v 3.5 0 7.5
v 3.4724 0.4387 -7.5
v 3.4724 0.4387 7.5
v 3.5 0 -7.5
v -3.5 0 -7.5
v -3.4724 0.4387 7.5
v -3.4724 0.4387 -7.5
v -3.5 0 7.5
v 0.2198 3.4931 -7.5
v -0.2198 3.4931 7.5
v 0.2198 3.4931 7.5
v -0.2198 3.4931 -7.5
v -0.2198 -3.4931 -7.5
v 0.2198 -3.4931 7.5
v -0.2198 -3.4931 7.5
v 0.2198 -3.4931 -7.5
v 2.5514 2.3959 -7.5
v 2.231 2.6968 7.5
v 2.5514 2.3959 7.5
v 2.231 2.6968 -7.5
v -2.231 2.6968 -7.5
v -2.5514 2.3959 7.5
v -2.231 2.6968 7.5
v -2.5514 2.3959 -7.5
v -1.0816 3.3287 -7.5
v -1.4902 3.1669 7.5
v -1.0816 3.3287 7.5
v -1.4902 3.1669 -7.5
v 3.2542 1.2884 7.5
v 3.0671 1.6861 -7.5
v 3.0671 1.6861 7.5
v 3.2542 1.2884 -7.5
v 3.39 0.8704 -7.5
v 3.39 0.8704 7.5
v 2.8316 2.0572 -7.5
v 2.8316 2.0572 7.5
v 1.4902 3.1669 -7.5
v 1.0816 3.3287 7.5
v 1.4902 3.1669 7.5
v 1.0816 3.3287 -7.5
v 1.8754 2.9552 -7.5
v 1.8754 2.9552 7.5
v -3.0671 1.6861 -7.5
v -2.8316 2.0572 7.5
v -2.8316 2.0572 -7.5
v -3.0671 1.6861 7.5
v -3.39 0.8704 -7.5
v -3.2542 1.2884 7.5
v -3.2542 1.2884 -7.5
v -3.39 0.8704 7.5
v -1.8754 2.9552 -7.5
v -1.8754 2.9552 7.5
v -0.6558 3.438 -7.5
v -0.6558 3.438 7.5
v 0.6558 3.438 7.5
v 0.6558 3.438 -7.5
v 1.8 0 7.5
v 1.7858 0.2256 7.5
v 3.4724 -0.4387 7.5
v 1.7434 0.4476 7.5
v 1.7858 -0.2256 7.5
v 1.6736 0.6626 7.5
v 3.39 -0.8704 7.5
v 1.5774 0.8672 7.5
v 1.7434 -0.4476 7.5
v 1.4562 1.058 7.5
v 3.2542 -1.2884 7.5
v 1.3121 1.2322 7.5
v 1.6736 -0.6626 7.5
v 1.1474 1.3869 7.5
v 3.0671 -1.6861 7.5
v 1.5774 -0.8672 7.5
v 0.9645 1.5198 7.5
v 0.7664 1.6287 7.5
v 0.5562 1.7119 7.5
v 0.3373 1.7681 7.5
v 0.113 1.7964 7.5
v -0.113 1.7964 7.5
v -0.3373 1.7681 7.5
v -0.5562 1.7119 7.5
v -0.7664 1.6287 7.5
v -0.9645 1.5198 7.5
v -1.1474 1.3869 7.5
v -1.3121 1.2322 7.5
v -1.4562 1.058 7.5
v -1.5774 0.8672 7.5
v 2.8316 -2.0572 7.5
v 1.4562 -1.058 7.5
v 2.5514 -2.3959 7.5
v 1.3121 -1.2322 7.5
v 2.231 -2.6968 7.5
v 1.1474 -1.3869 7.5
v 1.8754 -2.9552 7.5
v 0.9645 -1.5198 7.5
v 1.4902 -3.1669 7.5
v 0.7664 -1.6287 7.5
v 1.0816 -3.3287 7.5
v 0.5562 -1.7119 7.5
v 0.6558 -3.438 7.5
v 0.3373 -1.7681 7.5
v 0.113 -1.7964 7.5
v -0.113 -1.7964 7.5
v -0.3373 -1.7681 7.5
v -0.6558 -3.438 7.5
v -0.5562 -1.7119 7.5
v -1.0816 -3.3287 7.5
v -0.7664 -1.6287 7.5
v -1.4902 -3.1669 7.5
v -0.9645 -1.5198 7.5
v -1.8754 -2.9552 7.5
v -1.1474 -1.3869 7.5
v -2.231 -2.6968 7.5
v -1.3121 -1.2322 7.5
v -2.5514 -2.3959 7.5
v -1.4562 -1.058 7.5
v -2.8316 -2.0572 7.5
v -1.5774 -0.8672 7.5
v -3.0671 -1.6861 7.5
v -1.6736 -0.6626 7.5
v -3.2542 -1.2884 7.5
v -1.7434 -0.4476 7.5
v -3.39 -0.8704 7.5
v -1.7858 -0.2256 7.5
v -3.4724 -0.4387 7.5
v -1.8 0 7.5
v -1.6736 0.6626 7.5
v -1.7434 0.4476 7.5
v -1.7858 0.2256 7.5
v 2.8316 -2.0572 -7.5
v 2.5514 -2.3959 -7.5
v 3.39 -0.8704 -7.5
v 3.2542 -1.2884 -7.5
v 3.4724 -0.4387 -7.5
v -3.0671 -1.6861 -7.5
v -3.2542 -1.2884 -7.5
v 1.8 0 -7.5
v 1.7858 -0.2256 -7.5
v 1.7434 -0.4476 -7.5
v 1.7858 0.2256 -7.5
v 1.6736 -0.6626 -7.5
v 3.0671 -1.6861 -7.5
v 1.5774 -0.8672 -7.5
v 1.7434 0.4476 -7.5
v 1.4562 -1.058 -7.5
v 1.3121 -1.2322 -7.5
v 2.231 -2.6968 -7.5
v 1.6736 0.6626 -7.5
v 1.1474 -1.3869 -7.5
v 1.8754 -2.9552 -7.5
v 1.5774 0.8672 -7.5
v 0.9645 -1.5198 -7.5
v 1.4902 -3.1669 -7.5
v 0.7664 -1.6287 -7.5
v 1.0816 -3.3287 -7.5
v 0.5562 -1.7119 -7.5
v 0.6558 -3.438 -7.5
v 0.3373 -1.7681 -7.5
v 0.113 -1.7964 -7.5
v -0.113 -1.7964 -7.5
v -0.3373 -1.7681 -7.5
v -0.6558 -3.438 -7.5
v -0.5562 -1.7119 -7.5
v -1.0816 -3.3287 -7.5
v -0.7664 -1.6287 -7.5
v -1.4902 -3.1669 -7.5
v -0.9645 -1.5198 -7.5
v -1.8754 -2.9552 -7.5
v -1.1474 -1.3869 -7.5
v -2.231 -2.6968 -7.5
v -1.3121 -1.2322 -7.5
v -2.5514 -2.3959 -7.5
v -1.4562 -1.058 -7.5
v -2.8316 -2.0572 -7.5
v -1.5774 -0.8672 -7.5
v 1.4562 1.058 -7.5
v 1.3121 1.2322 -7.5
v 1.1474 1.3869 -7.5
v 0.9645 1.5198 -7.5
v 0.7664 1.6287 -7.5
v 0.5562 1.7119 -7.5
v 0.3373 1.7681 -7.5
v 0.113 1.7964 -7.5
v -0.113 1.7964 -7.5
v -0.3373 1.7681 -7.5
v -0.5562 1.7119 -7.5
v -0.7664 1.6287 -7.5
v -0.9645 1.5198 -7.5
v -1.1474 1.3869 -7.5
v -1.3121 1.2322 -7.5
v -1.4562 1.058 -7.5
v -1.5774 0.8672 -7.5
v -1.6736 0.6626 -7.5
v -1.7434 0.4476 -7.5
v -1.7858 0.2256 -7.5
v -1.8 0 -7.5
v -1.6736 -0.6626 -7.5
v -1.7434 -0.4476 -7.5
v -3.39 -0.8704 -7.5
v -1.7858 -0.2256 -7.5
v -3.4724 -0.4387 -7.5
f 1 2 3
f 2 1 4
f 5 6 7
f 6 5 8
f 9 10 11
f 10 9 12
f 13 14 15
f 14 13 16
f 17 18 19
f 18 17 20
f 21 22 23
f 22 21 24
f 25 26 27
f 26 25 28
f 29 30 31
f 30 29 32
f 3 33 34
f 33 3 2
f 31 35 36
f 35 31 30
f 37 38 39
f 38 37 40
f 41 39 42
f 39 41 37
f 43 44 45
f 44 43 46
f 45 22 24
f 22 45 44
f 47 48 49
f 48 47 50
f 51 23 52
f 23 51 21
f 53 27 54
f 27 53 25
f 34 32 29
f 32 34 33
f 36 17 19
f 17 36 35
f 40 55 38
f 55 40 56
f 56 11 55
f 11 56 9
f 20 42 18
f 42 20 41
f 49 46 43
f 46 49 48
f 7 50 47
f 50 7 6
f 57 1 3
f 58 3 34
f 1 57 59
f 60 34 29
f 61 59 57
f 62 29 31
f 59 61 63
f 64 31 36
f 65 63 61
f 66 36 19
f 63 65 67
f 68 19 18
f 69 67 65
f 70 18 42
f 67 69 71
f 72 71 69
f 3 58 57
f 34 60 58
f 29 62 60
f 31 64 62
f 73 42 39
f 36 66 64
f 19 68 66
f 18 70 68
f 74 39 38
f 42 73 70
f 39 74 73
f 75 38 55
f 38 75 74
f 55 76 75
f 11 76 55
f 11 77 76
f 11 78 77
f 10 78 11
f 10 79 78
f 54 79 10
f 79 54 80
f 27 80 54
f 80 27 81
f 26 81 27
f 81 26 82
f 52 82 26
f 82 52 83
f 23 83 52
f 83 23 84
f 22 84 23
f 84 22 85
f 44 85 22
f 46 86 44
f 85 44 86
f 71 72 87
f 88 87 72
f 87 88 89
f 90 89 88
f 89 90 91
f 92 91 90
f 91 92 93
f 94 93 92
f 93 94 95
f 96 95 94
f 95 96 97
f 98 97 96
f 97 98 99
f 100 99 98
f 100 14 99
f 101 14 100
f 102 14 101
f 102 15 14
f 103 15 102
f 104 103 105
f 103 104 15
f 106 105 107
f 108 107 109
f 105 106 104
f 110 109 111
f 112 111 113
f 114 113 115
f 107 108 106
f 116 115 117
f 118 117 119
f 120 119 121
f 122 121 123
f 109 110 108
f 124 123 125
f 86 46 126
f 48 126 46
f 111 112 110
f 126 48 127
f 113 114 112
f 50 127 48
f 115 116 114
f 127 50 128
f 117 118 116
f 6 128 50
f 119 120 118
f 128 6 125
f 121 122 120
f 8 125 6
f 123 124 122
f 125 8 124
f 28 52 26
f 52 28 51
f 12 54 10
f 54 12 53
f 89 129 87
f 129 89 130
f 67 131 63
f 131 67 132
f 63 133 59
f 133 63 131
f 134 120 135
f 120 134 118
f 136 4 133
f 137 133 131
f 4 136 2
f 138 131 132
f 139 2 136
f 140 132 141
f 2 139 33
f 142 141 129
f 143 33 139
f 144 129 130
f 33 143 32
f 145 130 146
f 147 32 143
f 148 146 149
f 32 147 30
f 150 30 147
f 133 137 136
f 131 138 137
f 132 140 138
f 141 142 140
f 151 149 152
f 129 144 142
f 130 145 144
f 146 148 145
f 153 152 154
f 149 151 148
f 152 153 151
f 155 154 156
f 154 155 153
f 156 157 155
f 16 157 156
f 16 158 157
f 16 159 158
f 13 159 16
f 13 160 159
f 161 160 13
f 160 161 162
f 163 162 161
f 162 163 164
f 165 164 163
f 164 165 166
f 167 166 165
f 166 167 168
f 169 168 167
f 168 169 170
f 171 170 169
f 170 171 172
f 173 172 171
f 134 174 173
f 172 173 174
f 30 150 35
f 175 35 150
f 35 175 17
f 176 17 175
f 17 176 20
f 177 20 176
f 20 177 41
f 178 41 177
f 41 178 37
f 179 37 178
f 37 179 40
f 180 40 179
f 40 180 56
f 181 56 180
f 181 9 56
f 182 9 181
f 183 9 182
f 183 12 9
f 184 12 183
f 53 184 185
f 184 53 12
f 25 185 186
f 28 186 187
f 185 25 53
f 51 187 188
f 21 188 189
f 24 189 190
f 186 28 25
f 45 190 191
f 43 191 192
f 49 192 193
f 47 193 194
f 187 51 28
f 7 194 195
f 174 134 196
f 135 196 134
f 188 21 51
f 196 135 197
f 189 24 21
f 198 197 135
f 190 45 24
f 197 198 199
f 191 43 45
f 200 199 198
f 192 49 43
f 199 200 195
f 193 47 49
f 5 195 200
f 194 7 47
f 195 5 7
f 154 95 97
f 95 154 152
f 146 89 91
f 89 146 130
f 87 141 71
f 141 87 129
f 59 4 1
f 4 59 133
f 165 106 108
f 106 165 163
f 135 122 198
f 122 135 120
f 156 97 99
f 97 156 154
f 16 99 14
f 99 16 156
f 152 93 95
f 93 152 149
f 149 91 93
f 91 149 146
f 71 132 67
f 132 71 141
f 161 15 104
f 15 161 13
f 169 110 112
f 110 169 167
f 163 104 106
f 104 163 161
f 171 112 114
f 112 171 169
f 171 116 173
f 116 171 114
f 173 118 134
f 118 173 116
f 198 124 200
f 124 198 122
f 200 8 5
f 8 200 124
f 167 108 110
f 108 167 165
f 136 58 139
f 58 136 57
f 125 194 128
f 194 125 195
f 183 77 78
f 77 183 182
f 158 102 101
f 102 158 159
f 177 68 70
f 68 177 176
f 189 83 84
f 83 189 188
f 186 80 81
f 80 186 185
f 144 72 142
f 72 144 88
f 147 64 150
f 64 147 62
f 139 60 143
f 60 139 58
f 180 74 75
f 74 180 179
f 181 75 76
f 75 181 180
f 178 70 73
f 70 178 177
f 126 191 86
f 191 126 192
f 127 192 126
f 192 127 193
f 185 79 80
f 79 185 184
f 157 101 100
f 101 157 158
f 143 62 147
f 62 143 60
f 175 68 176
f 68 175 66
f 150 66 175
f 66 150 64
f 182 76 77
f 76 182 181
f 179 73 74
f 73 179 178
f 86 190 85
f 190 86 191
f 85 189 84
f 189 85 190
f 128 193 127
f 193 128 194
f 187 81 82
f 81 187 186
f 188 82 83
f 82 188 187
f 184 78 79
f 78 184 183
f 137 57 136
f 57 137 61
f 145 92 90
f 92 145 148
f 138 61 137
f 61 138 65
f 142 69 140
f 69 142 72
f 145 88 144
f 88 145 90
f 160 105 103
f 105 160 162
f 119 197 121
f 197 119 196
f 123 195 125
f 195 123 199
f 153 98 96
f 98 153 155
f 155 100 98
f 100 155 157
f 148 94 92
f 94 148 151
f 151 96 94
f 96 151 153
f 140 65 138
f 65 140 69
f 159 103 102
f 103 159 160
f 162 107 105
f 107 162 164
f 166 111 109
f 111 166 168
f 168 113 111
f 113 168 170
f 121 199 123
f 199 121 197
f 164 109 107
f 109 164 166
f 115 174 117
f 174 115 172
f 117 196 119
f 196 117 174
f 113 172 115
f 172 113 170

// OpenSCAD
$fn = 50;


difference() {
	union() {
		translate(v = [0, 0, -7.5000000000]) {
			cylinder(h = 15, r = 3.5000000000);
		}
	}
	union() {
		translate(v = [0, 0, -100.0000000000]) {
			cylinder(h = 200, r = 1.8000000000);
		}
	}
}
